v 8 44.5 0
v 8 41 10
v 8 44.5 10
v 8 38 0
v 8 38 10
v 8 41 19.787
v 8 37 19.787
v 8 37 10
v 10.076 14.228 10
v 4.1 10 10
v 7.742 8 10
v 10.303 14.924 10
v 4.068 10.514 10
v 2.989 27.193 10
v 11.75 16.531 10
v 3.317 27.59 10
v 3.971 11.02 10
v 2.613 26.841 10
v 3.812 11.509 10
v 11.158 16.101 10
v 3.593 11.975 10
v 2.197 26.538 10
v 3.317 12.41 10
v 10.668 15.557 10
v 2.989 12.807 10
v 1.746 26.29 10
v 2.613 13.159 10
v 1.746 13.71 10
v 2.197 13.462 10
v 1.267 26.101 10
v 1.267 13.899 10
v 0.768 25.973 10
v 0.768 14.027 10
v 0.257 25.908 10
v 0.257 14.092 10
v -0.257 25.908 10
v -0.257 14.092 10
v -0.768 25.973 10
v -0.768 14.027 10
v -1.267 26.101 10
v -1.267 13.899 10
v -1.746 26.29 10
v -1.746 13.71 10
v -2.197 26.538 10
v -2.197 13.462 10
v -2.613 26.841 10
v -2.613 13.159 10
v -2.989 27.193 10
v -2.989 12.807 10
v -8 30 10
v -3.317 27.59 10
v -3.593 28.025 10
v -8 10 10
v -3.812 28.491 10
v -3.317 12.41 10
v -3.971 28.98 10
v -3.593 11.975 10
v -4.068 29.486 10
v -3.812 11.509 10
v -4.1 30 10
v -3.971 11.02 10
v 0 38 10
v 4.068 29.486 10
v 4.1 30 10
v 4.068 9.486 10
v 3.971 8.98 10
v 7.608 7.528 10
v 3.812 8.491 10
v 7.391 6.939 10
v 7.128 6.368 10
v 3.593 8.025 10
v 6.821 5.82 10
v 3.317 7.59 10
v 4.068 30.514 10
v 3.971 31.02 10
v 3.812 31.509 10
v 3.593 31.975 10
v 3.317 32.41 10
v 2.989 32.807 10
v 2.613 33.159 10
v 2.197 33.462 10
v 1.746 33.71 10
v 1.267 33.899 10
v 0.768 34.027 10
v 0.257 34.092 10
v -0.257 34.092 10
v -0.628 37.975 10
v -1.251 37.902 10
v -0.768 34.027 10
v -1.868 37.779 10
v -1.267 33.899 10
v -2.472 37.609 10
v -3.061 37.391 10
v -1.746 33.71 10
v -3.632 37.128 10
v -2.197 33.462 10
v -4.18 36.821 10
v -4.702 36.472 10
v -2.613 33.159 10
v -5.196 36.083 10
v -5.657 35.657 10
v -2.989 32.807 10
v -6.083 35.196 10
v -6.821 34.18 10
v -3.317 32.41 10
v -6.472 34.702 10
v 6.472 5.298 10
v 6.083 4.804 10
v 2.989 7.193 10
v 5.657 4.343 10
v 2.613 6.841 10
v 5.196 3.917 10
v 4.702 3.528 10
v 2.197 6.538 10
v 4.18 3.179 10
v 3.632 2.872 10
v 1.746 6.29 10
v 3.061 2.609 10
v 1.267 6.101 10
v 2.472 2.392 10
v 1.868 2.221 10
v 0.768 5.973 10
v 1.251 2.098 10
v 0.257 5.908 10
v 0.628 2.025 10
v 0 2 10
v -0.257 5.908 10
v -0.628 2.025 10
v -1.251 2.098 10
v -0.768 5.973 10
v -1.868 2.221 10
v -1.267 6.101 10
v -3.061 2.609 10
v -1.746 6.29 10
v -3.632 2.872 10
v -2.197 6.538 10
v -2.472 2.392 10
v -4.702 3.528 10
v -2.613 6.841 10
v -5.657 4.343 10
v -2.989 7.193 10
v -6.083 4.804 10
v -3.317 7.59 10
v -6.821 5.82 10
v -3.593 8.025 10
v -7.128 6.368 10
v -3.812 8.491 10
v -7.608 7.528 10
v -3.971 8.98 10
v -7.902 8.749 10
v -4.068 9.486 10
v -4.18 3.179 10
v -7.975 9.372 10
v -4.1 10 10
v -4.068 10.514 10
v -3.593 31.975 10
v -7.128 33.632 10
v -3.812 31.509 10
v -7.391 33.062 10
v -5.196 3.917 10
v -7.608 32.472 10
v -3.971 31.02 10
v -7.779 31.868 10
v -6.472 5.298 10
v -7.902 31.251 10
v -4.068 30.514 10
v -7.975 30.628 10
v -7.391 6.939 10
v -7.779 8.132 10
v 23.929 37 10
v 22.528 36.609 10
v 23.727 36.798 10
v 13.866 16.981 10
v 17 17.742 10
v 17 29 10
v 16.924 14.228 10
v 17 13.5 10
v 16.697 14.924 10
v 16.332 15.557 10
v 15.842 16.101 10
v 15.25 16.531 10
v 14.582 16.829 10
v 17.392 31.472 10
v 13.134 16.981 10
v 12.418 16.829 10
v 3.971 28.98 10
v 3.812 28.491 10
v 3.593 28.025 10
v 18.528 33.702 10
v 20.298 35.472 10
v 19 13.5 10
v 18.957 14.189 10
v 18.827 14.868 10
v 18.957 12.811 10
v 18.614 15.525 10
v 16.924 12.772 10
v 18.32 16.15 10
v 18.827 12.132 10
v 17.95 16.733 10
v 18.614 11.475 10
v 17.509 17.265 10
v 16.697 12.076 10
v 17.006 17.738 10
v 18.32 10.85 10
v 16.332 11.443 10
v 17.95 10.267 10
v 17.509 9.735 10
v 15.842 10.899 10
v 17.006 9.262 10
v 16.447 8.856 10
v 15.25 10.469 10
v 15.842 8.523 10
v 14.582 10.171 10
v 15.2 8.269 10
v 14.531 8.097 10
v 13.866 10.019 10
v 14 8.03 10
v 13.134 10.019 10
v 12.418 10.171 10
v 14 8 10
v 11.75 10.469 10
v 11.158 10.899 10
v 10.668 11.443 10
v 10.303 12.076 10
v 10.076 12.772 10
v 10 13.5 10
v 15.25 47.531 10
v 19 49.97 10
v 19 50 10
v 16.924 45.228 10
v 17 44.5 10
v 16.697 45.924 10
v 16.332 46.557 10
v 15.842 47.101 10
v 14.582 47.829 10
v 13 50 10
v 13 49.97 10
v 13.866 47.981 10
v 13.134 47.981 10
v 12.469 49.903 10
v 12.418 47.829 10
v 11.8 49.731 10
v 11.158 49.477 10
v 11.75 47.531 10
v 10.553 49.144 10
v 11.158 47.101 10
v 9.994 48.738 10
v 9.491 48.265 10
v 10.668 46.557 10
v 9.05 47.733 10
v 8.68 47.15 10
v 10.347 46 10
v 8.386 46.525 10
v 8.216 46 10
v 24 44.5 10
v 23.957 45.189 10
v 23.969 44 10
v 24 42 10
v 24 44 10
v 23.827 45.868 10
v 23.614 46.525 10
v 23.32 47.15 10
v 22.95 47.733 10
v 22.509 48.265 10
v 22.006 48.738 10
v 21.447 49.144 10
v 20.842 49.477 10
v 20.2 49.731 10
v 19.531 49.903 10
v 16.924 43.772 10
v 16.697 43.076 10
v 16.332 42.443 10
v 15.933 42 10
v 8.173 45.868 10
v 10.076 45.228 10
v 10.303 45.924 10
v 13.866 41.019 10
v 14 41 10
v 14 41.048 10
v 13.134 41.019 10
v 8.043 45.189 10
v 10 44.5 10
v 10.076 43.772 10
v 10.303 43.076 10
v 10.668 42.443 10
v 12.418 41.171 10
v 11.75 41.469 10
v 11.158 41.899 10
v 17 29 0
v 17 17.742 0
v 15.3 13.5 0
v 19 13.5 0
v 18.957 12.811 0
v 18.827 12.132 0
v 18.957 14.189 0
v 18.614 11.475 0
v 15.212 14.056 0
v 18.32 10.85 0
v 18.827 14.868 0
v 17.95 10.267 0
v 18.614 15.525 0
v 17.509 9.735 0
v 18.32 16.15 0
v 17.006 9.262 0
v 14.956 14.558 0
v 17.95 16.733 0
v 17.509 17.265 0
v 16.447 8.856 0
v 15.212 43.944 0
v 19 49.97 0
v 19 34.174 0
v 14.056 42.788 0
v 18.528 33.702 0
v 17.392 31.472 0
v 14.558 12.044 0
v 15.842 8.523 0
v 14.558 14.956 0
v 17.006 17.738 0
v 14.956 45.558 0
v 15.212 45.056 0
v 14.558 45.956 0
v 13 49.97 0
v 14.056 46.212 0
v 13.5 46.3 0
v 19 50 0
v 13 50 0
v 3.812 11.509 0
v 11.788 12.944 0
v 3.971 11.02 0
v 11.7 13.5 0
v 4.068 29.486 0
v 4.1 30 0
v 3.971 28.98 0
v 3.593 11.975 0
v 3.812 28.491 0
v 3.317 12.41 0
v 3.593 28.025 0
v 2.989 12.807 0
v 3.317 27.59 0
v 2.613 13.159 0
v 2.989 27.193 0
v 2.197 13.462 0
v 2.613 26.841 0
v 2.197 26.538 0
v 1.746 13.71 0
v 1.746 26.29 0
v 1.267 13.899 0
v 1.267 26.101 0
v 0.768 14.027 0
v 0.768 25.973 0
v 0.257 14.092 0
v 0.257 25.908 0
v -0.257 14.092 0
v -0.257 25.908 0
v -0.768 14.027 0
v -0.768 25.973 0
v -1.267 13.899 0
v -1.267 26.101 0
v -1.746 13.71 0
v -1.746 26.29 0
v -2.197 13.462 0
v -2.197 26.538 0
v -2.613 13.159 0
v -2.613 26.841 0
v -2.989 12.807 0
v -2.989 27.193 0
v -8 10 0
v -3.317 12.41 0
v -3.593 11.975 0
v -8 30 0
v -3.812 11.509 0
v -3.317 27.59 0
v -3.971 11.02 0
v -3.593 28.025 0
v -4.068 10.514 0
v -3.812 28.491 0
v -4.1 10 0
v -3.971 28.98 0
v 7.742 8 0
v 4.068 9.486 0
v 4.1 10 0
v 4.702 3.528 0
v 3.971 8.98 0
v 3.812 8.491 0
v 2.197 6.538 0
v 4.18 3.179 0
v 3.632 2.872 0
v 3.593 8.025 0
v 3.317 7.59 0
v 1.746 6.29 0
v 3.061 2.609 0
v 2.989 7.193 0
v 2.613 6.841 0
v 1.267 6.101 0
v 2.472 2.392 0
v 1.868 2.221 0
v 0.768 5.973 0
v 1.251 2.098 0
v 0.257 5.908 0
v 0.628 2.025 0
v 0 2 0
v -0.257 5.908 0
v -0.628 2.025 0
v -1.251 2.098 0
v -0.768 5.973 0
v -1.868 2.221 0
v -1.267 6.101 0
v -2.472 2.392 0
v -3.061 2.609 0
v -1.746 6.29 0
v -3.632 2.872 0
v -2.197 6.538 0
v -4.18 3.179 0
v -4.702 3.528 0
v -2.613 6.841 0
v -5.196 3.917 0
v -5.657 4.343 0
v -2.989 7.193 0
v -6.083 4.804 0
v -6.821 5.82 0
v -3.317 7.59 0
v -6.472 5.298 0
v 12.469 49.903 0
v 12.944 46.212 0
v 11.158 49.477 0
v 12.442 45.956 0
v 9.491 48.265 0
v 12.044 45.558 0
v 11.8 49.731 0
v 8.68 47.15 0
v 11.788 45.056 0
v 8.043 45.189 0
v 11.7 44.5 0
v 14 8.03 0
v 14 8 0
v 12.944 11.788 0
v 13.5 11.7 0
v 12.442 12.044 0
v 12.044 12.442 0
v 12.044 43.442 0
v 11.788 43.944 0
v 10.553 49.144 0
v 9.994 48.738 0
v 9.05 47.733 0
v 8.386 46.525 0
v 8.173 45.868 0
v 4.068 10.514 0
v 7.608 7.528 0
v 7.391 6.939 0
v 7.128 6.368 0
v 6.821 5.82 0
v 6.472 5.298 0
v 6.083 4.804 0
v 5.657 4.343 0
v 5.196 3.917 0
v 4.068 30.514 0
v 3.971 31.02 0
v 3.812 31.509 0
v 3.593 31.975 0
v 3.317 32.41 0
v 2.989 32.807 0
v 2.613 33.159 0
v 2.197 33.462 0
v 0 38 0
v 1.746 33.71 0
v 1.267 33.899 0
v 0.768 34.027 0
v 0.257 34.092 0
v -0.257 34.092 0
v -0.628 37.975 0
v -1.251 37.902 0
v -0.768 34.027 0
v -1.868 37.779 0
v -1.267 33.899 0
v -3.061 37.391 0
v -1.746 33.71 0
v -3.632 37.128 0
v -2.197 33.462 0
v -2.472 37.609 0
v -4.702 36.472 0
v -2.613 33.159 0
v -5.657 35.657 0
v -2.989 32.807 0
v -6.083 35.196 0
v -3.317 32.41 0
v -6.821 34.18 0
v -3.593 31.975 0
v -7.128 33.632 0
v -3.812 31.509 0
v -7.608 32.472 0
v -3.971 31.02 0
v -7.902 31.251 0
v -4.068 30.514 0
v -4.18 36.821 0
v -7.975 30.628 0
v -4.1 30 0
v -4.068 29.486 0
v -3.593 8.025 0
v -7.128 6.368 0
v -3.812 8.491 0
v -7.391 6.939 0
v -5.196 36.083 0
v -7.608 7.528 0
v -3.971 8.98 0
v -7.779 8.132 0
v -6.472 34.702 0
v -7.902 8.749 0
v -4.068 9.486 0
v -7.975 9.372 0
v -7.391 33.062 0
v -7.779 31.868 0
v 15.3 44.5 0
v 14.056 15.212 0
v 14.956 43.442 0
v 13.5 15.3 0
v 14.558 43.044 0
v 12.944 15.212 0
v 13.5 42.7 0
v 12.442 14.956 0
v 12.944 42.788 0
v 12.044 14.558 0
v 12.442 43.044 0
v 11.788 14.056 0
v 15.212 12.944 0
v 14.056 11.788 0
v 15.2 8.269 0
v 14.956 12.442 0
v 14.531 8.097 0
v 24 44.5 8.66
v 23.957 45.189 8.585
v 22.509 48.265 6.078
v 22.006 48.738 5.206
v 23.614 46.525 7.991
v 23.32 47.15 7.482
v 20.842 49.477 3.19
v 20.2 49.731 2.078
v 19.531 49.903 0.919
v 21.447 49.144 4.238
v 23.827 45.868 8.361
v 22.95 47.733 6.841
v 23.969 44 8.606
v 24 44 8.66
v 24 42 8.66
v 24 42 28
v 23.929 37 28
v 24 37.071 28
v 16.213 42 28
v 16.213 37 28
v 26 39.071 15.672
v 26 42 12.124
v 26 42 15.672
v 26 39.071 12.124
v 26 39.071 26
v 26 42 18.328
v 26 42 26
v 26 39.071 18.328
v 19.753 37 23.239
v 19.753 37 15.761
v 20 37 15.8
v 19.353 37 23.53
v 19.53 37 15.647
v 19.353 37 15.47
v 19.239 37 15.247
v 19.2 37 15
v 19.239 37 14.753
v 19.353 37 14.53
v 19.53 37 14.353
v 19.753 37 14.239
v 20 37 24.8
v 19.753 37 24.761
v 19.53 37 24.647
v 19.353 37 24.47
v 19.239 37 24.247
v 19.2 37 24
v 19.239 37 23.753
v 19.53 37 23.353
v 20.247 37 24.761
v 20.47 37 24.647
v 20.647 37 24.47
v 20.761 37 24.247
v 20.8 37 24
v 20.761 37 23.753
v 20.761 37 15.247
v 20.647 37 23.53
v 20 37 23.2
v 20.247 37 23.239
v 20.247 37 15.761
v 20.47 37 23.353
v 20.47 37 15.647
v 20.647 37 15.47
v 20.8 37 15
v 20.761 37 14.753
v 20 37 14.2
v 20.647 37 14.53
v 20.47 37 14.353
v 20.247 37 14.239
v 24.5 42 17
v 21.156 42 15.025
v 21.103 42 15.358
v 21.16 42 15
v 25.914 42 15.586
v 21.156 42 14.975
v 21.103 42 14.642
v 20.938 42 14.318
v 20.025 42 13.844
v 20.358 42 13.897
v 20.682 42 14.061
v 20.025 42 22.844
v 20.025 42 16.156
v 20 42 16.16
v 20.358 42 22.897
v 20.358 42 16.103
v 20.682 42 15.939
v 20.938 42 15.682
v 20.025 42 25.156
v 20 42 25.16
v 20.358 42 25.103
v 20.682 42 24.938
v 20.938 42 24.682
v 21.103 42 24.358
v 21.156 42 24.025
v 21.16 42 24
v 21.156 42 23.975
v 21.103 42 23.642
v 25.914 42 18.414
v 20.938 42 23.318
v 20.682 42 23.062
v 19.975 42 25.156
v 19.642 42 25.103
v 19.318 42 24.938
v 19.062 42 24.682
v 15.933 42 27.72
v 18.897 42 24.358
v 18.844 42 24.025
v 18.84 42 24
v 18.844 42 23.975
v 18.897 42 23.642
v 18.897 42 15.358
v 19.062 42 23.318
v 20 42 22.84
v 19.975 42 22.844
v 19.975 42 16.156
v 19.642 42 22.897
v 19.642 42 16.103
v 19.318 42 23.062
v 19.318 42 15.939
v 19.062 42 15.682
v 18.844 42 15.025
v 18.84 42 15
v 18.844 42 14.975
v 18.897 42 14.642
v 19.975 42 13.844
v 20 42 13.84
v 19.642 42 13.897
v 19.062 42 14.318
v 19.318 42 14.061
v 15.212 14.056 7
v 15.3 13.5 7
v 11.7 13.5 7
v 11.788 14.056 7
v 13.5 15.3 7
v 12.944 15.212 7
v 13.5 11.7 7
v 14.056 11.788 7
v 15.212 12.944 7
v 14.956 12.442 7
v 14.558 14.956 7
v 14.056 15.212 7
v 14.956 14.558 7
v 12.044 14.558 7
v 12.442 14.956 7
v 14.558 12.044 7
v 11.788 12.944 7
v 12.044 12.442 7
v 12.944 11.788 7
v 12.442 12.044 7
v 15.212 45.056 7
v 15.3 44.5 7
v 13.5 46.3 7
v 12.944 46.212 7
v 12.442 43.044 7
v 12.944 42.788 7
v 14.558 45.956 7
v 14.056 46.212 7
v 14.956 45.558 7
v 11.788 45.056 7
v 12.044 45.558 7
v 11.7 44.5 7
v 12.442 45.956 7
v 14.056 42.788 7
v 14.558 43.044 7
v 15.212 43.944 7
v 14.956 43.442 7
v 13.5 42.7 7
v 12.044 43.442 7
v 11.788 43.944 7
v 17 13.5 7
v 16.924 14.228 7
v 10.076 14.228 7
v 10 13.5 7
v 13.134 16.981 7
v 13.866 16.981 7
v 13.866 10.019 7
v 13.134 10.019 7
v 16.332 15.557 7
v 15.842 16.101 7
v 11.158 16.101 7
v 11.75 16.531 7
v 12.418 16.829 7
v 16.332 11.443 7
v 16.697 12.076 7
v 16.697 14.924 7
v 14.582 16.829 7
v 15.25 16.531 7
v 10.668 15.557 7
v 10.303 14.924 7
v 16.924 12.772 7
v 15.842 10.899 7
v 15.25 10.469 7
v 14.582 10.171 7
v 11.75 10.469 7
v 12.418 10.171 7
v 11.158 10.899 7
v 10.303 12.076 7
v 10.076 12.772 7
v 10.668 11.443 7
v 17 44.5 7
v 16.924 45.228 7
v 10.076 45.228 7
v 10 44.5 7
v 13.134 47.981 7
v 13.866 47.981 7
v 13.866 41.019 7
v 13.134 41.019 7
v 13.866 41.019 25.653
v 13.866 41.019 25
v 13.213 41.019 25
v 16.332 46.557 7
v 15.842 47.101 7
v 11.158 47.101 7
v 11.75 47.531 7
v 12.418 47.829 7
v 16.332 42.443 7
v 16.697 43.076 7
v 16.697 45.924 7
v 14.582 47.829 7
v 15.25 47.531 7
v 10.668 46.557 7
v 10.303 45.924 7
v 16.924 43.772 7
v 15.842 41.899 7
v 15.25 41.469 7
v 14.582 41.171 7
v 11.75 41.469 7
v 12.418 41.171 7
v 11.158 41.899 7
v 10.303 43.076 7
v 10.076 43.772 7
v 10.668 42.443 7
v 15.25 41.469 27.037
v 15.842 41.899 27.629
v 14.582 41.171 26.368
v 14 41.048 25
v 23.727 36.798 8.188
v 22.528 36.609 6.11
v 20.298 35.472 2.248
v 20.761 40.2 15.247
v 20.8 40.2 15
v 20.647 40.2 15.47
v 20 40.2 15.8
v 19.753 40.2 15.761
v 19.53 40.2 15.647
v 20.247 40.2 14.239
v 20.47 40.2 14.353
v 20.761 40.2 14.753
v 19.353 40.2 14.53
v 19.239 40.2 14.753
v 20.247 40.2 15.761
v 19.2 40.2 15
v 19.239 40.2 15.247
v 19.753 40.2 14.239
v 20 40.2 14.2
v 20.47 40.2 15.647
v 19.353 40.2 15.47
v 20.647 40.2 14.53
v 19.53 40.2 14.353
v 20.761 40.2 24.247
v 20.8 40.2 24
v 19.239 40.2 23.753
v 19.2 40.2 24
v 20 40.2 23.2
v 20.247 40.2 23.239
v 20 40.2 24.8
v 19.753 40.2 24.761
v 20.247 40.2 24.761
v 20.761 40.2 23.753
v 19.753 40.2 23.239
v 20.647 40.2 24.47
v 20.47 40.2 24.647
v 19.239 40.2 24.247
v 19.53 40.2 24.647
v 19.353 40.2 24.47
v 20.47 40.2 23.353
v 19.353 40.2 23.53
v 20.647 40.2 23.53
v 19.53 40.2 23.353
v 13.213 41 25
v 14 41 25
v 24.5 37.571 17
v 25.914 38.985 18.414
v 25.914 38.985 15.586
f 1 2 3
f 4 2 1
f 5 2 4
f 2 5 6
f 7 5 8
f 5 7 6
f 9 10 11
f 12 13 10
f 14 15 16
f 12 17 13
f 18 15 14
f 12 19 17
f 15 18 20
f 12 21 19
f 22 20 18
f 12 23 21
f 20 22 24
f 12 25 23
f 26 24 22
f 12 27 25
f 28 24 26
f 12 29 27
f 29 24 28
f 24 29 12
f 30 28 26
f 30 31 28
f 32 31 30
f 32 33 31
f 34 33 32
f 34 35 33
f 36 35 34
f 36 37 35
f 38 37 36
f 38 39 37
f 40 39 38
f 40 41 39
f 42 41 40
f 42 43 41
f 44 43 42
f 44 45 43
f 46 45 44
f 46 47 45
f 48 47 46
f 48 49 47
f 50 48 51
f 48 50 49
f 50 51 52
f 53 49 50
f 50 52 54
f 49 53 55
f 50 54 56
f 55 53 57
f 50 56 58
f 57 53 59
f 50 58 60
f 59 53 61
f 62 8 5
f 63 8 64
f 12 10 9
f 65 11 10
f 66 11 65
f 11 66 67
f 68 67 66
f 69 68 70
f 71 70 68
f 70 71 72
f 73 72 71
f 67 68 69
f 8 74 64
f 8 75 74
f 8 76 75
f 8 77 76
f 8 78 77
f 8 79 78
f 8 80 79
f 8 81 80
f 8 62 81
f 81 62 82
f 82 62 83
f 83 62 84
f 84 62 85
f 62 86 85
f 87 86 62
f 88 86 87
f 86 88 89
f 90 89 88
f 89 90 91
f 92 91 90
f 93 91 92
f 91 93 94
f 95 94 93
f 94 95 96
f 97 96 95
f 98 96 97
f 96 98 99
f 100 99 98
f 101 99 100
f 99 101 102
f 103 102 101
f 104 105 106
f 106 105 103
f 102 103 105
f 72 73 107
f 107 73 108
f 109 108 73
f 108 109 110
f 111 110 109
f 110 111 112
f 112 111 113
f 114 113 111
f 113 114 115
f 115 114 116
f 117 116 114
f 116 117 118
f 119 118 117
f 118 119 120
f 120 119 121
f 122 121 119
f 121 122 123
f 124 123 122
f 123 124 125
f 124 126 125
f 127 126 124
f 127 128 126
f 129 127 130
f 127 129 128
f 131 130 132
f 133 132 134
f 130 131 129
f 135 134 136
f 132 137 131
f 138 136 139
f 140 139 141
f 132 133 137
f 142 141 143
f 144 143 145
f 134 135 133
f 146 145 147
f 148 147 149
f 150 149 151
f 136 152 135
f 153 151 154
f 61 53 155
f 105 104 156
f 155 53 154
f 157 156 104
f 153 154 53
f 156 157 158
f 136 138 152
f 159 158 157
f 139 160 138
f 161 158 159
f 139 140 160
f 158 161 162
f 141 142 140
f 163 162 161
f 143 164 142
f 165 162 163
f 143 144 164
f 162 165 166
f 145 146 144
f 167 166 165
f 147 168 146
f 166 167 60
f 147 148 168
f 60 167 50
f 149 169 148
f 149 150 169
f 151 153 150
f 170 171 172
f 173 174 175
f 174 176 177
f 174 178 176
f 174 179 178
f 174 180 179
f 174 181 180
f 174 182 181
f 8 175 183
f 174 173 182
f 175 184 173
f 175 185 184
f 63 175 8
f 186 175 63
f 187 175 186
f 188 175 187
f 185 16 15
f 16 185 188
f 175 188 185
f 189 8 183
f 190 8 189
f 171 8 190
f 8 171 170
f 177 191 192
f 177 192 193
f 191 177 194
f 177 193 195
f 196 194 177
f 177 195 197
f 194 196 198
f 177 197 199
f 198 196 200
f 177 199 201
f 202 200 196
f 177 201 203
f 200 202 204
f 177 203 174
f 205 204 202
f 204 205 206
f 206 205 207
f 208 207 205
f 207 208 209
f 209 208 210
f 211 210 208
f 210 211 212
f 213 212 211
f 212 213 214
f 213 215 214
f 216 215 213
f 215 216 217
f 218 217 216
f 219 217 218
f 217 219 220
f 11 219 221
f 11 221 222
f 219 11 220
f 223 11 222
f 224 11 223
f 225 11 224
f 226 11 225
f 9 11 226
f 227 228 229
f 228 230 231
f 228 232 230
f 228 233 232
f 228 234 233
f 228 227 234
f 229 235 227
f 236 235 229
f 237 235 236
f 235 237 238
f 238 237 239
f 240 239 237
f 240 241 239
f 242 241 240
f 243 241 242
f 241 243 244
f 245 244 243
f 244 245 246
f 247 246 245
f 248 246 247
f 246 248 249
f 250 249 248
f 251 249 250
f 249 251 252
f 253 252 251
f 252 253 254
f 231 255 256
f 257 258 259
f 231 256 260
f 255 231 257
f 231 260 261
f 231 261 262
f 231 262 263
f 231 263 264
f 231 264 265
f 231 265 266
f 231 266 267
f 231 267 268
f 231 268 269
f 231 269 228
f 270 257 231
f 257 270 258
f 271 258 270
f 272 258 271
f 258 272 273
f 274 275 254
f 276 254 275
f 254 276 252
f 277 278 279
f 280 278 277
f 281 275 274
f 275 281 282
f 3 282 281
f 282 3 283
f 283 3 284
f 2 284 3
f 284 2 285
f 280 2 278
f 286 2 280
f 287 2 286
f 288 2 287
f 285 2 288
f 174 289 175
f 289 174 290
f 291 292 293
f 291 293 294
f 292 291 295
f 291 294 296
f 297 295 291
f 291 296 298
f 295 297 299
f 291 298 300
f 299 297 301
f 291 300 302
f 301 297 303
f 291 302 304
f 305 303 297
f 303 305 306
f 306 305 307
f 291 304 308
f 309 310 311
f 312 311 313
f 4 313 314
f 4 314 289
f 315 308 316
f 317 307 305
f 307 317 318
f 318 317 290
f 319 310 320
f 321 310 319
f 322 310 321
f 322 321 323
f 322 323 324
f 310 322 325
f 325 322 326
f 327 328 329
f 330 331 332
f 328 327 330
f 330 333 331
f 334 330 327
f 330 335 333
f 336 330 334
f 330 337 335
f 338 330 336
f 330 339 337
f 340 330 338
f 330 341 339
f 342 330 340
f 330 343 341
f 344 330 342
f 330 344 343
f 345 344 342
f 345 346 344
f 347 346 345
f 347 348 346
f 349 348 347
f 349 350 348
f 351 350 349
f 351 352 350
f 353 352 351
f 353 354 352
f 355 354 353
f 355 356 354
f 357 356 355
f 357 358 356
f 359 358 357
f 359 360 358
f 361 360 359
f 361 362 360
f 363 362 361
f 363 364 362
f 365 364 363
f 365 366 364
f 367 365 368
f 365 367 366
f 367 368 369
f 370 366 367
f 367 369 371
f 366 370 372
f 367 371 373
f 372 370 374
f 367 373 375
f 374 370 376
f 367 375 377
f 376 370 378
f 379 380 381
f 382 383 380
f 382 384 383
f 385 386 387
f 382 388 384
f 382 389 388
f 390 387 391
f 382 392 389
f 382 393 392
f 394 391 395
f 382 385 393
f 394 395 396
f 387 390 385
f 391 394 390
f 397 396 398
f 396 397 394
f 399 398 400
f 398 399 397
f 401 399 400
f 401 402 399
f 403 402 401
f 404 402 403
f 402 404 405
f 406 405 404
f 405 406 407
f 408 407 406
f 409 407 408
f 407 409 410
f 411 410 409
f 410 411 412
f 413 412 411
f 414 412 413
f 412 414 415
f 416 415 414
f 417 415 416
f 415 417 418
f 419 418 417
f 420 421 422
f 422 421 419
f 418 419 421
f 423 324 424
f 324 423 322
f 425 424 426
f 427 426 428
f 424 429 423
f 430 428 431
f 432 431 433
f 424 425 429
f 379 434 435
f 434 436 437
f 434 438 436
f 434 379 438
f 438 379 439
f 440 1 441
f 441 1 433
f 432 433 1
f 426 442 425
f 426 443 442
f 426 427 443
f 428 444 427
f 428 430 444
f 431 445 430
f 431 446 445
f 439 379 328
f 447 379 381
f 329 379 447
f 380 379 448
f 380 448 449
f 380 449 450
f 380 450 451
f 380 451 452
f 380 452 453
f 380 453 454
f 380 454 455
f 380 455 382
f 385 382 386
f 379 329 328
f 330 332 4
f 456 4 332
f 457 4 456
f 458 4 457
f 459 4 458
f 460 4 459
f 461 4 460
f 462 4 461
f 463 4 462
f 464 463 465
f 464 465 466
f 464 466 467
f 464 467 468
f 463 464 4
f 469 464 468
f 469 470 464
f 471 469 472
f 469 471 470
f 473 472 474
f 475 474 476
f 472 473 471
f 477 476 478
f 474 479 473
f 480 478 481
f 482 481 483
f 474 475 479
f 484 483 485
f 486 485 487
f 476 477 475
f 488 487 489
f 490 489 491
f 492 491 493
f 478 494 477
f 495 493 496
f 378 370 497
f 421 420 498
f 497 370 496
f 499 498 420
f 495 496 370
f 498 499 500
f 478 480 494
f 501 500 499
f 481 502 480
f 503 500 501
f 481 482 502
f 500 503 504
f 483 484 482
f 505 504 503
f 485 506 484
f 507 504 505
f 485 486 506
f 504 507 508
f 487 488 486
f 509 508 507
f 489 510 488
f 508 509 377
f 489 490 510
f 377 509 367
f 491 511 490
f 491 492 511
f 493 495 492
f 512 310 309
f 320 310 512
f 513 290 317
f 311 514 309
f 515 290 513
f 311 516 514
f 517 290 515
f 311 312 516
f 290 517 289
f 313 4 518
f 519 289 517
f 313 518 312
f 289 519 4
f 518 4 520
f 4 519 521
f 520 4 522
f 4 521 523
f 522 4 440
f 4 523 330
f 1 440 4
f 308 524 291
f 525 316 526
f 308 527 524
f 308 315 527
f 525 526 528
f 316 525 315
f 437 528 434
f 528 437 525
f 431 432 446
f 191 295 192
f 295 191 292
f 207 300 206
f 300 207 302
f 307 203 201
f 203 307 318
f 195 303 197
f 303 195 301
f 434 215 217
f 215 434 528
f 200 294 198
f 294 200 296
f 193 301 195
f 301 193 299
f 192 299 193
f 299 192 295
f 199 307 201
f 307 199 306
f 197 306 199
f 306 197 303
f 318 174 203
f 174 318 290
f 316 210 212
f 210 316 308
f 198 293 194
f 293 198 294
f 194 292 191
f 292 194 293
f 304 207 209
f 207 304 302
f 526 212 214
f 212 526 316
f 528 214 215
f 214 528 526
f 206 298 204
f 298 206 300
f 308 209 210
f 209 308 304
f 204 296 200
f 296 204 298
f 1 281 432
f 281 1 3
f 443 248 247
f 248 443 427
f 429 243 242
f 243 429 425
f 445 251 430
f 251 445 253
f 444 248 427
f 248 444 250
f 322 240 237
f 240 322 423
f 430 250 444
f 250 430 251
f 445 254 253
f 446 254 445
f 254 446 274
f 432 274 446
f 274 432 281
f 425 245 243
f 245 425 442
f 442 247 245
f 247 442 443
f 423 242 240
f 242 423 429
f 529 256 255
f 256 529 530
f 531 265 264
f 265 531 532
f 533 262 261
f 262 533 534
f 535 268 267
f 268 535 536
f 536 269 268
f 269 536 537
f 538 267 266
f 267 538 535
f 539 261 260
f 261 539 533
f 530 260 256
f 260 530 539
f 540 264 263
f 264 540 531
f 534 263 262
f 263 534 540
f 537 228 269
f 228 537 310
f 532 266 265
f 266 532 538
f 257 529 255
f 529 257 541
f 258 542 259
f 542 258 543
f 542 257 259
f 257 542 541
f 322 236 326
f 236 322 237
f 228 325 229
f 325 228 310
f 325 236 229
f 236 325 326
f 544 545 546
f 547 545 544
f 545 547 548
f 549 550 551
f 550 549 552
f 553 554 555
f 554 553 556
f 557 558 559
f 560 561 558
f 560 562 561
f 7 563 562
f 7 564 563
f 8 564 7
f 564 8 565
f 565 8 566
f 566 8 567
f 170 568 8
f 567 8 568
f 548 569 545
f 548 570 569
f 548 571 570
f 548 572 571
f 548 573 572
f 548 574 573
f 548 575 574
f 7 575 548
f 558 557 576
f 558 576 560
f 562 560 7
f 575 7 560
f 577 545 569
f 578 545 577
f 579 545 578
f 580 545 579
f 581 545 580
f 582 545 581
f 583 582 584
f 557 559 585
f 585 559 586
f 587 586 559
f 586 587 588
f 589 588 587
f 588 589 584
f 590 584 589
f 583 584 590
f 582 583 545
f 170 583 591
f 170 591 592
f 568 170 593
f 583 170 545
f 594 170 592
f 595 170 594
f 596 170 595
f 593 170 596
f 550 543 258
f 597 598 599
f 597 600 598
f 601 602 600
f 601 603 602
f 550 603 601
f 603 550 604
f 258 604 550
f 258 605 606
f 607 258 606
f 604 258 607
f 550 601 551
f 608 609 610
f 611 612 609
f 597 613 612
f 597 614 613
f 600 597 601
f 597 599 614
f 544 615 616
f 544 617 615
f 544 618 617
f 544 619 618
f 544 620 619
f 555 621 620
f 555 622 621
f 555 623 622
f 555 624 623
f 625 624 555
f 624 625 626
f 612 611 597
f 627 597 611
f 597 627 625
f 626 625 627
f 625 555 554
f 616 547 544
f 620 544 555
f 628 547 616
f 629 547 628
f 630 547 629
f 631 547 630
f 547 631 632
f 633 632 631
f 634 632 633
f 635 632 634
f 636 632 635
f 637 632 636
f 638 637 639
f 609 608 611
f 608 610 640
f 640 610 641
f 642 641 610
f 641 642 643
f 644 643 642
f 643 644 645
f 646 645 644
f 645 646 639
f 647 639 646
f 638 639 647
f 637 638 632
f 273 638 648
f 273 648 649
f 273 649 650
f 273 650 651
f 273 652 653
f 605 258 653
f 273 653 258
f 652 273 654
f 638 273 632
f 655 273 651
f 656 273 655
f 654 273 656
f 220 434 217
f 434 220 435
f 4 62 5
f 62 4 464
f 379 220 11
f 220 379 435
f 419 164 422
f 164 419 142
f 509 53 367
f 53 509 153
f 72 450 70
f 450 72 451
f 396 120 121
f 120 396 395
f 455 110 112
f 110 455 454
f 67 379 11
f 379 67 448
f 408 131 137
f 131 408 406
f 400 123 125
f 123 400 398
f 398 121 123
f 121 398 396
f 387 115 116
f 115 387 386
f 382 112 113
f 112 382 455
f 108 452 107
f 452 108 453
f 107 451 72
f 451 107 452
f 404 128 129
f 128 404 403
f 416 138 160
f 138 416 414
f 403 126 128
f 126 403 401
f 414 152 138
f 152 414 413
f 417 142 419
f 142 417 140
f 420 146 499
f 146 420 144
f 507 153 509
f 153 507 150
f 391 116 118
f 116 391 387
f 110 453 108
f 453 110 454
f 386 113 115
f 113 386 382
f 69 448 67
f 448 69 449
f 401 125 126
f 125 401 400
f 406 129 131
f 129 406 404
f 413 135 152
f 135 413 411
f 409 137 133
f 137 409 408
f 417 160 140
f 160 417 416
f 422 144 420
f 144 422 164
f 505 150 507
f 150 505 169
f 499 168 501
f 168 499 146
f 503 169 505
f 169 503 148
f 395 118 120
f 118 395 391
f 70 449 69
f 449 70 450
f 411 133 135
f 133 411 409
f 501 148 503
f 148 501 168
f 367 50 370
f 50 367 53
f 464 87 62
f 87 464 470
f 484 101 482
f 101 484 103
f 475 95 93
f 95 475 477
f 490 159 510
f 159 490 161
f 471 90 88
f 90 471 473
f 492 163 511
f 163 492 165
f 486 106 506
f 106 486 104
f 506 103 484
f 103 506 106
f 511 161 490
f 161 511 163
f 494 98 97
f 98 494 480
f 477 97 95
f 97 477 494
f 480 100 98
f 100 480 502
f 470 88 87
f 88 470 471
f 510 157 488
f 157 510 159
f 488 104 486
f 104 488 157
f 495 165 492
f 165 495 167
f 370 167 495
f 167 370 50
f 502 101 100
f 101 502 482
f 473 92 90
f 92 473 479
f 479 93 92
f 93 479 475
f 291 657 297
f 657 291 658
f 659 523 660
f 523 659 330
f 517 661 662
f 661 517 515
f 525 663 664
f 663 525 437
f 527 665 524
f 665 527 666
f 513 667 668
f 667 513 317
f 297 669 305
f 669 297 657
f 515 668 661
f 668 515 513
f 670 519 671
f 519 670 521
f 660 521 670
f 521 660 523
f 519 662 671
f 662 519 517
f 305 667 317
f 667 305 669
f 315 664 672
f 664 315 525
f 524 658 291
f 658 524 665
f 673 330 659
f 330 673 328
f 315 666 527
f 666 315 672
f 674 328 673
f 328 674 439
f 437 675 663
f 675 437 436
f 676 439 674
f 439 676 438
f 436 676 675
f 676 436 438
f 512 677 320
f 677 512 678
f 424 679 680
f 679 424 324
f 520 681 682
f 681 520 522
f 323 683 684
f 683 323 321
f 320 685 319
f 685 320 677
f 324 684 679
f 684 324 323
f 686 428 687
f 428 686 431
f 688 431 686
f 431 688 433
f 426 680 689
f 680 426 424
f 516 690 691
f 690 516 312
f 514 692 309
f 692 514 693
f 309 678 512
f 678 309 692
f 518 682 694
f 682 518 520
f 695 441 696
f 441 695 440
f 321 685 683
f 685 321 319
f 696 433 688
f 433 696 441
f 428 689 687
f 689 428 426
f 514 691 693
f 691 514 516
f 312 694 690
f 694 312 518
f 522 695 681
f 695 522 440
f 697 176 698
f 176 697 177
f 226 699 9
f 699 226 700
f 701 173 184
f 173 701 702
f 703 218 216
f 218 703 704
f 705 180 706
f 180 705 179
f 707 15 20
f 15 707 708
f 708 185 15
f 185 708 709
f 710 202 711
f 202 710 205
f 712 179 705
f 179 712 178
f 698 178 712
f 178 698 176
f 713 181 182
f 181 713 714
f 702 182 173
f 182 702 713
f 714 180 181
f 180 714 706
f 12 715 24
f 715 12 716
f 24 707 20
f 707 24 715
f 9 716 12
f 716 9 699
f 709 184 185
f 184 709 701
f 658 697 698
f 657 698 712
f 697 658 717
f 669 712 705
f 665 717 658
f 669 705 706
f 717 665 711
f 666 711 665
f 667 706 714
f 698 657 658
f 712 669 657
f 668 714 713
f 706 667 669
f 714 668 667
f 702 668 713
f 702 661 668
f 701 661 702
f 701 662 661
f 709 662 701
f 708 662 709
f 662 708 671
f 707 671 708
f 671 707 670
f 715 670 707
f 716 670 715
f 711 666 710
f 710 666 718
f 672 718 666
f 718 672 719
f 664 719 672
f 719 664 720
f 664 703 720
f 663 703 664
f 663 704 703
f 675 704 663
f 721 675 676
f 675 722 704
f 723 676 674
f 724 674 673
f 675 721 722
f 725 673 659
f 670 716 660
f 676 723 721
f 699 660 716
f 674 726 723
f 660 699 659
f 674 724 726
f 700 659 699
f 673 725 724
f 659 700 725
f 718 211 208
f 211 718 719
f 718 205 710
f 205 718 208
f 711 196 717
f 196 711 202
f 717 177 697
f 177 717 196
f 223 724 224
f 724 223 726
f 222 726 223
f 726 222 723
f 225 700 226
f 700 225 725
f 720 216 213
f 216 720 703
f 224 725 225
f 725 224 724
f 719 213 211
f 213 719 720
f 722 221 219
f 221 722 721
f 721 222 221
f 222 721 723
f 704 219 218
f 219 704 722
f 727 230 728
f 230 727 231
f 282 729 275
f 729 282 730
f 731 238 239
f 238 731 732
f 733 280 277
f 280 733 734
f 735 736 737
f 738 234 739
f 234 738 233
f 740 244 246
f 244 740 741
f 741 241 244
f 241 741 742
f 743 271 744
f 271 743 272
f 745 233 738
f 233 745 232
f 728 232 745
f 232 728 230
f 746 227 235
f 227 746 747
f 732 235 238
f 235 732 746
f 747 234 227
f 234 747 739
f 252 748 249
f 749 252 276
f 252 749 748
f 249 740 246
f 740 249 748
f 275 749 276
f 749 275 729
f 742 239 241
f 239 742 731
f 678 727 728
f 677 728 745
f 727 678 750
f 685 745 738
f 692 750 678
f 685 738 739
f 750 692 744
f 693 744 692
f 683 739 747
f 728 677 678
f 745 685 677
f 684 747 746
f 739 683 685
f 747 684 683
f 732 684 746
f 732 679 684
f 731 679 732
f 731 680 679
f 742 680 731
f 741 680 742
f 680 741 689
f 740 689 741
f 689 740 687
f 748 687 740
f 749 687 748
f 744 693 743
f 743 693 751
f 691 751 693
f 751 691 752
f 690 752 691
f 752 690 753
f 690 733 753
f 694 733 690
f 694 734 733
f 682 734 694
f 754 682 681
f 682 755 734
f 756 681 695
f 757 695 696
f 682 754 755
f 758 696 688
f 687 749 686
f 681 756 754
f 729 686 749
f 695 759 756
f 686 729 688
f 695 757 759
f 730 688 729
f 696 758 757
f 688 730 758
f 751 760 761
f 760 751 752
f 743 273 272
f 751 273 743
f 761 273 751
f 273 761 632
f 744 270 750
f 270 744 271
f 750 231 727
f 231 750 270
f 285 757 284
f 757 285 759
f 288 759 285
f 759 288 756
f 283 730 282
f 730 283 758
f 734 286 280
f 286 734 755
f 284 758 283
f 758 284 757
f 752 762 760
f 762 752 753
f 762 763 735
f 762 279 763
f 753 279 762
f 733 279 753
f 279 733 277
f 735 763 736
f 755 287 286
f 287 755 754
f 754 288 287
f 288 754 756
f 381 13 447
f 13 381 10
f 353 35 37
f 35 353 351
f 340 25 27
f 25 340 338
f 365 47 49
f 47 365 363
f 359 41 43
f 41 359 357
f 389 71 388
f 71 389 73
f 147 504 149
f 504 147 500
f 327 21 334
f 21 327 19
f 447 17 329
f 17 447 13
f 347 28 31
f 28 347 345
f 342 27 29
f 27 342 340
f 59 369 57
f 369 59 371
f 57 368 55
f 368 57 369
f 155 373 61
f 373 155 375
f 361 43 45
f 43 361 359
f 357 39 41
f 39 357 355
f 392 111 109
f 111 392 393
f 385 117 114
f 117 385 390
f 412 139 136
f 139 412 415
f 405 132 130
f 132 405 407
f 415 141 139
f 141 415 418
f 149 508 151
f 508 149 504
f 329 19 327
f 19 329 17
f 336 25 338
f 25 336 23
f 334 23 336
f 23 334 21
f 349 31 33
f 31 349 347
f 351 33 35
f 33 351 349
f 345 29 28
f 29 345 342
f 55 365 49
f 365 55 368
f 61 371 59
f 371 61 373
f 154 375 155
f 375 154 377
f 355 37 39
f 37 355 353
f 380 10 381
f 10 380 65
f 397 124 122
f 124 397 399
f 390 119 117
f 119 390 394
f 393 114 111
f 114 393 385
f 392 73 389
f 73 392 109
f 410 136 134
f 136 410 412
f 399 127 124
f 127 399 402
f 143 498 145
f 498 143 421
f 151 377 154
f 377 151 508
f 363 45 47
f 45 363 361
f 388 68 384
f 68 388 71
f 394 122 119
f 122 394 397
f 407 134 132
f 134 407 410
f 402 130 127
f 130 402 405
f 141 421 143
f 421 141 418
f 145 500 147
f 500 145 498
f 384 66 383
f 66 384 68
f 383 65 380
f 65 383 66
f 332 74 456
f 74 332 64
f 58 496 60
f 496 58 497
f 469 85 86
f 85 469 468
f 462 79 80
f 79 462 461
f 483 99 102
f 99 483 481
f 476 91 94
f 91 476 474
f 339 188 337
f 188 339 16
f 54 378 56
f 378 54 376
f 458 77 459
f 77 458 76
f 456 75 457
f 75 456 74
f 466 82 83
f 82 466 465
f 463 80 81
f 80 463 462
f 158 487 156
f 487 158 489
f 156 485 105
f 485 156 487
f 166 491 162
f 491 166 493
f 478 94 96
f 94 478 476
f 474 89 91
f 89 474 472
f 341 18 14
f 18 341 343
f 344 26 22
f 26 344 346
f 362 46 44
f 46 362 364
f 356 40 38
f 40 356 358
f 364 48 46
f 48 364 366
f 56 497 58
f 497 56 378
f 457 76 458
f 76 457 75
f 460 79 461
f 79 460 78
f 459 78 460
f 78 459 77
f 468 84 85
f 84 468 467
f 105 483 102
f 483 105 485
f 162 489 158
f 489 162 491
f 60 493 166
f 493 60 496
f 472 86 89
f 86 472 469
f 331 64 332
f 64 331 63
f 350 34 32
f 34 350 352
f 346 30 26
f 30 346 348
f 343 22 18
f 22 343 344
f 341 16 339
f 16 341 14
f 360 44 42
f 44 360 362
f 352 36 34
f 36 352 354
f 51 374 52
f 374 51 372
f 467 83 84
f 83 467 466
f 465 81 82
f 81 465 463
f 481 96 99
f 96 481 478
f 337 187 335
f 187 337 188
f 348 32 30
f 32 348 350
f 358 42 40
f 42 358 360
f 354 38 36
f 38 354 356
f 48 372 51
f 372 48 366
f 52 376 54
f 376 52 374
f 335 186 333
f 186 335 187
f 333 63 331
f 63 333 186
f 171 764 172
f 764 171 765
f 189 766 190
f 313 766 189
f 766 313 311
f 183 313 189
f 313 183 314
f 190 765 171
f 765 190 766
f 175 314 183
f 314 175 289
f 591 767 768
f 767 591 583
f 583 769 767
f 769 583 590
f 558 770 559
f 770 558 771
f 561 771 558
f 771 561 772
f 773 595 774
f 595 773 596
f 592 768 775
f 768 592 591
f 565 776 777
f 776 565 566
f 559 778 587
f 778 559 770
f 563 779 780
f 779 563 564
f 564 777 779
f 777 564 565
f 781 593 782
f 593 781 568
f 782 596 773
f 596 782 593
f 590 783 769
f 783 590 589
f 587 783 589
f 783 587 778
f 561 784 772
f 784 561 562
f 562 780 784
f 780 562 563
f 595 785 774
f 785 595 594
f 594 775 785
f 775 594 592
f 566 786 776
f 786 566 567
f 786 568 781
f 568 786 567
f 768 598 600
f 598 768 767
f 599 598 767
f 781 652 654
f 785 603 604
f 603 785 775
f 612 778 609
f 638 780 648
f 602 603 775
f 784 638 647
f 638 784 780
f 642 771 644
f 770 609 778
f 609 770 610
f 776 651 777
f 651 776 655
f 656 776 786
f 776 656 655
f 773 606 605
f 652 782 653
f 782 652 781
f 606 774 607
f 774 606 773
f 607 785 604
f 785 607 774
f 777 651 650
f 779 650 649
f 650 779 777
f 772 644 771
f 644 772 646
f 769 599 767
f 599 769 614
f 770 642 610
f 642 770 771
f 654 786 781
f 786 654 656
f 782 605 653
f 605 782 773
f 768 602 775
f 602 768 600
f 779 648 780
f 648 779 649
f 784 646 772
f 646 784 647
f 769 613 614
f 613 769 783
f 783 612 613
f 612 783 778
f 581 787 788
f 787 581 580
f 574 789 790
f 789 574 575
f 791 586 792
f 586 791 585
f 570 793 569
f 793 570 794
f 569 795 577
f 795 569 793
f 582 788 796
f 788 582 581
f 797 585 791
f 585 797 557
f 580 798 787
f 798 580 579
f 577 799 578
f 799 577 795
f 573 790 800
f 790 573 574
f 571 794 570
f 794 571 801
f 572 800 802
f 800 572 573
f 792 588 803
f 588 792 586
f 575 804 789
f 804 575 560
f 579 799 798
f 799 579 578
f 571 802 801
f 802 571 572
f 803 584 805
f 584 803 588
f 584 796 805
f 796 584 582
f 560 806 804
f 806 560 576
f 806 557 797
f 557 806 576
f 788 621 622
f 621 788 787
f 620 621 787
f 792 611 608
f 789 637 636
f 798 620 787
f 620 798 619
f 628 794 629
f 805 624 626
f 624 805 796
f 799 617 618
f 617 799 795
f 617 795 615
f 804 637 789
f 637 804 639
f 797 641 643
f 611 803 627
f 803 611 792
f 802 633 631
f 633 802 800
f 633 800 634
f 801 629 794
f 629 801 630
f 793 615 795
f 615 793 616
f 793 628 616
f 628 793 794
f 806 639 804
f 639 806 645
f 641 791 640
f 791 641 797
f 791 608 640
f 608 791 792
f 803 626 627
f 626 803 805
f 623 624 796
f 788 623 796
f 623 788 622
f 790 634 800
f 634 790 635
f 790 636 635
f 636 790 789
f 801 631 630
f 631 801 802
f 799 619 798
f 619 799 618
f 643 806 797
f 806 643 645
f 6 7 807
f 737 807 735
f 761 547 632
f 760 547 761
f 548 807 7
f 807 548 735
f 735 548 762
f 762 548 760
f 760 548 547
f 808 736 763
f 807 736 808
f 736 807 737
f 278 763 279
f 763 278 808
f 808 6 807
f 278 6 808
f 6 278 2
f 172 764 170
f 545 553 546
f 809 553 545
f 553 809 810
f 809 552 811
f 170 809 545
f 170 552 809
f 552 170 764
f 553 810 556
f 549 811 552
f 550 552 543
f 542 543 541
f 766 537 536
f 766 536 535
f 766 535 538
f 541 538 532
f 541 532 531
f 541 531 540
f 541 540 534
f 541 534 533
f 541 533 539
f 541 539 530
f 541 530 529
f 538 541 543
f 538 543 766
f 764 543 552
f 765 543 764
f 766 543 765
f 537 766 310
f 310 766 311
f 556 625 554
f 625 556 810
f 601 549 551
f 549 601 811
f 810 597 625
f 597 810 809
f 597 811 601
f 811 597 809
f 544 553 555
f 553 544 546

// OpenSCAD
// PRUSA iteration3
// Y motor mount
// GNU GPL v3
// Josef Průša <iam@josefprusa.cz> and contributors
// http://www.reprap.org/wiki/Prusa_Mendel
// http://prusamendel.org

//include <configuration.scad>

module y_motor_base(){
 // Motor holding part
    translate(v = [29,-21+50,0]){
    translate(v = [-21+4.5,0,5]) cube(size = [9,31,10], center=true);
    translate(v = [-15.5,-15.5,0]) cylinder(h = 10, r=5.5, $fn=50);
    translate(v = [-15.5,+15.5,0]) cylinder(h = 10, r=5.5, $fn=50);

    //end stop
    translate(v = [-10.5,+15.5,0]) cylinder(h = 10, r=5.5, $fn=50);
    translate([-12,0,0]) cube([7, 15, 10]);
    translate([-16,16,0]) cube([6, 5, 10]);
    translate([-21,8,0]) cube([18, 5, 28]);	
        
  // Joins motor holder and rod plate
  translate(v = [-29,-21,0]) cube(size = [14,30,10]);
 }
 // Front holding part
 translate(v = [0,10,0]) cylinder(h = 10, r=8, $fn=80);
 translate(v = [0,20,5])cube(size = [16,20,10], center=true);	
 translate(v = [0,30,0])cylinder(h = 10, r=8, $fn=80);
}

module y_motor_holes(){
 translate(v = [29,-21+50,0]){
  // Screw head holes
  translate(v = [-15.5,-15.5,-1]) cylinder(h = 10, r=1.8, $fn=20);
  translate(v = [-15.5,+15.5,-1]) cylinder(h = 10, r=1.8, $fn=20);
  // Screw holes
  translate(v = [-15.5,-15.5,7]) cylinder(h = 7, r=3.5, $fn=30);
  translate(v = [-15.5,+15.5,7]) cylinder(h = 25, r=3.5, $fn=30);
 }
 translate(v = [0,10,-1]) cylinder(h = 12, r=4.1, $fn=50);	
 translate(v = [0,30,-1]) cylinder(h = 12, r=4.1, $fn=50);
 
 //endstop
    translate([25,29,0])  cylinder(h = 20, r=8, $fn=20); 
   
    translate([20,45,15]) rotate([90,0,0]) cylinder(h = 10, r=0.8, $fn=20);
    translate([20,42.2,15]) rotate([90,0,0]) cylinder(h = 2, r1=1.2, r2=0.8, $fn=20);
 
    translate([20,45,24]) rotate([90,0,0]) cylinder(h = 10, r=0.8, $fn=20);
    translate([20,42.2,24]) rotate([90,0,0]) cylinder(h = 2, r1=1.2, r2=0.8, $fn=20);
   
    // endstop corner cutout
    translate([-5,35,28]) rotate([0,45,0]) cube([15, 10, 15]);	
    translate([-1,41,10])  cube([15, 5, 15]);	
    translate([27,33,0]) rotate([0,0,45]) cube([5, 5, 28]);	
    
    translate([19,32,0]) rotate([0,30,0]) cube([8, 20, 18]);	
    translate([24.5,32,17]) rotate([0,45,0]) cube([2, 20, 2]);	
    
    translate([23,32,29]) rotate([0,45,0]) cube([5, 20, 5]);	
}




//#translate([18,40,10]) cube([8, 5, 5]);	

// Final part
module y_motor(){
 difference(){
  y_motor_base();
  y_motor_holes();
 }
}

y_motor();
